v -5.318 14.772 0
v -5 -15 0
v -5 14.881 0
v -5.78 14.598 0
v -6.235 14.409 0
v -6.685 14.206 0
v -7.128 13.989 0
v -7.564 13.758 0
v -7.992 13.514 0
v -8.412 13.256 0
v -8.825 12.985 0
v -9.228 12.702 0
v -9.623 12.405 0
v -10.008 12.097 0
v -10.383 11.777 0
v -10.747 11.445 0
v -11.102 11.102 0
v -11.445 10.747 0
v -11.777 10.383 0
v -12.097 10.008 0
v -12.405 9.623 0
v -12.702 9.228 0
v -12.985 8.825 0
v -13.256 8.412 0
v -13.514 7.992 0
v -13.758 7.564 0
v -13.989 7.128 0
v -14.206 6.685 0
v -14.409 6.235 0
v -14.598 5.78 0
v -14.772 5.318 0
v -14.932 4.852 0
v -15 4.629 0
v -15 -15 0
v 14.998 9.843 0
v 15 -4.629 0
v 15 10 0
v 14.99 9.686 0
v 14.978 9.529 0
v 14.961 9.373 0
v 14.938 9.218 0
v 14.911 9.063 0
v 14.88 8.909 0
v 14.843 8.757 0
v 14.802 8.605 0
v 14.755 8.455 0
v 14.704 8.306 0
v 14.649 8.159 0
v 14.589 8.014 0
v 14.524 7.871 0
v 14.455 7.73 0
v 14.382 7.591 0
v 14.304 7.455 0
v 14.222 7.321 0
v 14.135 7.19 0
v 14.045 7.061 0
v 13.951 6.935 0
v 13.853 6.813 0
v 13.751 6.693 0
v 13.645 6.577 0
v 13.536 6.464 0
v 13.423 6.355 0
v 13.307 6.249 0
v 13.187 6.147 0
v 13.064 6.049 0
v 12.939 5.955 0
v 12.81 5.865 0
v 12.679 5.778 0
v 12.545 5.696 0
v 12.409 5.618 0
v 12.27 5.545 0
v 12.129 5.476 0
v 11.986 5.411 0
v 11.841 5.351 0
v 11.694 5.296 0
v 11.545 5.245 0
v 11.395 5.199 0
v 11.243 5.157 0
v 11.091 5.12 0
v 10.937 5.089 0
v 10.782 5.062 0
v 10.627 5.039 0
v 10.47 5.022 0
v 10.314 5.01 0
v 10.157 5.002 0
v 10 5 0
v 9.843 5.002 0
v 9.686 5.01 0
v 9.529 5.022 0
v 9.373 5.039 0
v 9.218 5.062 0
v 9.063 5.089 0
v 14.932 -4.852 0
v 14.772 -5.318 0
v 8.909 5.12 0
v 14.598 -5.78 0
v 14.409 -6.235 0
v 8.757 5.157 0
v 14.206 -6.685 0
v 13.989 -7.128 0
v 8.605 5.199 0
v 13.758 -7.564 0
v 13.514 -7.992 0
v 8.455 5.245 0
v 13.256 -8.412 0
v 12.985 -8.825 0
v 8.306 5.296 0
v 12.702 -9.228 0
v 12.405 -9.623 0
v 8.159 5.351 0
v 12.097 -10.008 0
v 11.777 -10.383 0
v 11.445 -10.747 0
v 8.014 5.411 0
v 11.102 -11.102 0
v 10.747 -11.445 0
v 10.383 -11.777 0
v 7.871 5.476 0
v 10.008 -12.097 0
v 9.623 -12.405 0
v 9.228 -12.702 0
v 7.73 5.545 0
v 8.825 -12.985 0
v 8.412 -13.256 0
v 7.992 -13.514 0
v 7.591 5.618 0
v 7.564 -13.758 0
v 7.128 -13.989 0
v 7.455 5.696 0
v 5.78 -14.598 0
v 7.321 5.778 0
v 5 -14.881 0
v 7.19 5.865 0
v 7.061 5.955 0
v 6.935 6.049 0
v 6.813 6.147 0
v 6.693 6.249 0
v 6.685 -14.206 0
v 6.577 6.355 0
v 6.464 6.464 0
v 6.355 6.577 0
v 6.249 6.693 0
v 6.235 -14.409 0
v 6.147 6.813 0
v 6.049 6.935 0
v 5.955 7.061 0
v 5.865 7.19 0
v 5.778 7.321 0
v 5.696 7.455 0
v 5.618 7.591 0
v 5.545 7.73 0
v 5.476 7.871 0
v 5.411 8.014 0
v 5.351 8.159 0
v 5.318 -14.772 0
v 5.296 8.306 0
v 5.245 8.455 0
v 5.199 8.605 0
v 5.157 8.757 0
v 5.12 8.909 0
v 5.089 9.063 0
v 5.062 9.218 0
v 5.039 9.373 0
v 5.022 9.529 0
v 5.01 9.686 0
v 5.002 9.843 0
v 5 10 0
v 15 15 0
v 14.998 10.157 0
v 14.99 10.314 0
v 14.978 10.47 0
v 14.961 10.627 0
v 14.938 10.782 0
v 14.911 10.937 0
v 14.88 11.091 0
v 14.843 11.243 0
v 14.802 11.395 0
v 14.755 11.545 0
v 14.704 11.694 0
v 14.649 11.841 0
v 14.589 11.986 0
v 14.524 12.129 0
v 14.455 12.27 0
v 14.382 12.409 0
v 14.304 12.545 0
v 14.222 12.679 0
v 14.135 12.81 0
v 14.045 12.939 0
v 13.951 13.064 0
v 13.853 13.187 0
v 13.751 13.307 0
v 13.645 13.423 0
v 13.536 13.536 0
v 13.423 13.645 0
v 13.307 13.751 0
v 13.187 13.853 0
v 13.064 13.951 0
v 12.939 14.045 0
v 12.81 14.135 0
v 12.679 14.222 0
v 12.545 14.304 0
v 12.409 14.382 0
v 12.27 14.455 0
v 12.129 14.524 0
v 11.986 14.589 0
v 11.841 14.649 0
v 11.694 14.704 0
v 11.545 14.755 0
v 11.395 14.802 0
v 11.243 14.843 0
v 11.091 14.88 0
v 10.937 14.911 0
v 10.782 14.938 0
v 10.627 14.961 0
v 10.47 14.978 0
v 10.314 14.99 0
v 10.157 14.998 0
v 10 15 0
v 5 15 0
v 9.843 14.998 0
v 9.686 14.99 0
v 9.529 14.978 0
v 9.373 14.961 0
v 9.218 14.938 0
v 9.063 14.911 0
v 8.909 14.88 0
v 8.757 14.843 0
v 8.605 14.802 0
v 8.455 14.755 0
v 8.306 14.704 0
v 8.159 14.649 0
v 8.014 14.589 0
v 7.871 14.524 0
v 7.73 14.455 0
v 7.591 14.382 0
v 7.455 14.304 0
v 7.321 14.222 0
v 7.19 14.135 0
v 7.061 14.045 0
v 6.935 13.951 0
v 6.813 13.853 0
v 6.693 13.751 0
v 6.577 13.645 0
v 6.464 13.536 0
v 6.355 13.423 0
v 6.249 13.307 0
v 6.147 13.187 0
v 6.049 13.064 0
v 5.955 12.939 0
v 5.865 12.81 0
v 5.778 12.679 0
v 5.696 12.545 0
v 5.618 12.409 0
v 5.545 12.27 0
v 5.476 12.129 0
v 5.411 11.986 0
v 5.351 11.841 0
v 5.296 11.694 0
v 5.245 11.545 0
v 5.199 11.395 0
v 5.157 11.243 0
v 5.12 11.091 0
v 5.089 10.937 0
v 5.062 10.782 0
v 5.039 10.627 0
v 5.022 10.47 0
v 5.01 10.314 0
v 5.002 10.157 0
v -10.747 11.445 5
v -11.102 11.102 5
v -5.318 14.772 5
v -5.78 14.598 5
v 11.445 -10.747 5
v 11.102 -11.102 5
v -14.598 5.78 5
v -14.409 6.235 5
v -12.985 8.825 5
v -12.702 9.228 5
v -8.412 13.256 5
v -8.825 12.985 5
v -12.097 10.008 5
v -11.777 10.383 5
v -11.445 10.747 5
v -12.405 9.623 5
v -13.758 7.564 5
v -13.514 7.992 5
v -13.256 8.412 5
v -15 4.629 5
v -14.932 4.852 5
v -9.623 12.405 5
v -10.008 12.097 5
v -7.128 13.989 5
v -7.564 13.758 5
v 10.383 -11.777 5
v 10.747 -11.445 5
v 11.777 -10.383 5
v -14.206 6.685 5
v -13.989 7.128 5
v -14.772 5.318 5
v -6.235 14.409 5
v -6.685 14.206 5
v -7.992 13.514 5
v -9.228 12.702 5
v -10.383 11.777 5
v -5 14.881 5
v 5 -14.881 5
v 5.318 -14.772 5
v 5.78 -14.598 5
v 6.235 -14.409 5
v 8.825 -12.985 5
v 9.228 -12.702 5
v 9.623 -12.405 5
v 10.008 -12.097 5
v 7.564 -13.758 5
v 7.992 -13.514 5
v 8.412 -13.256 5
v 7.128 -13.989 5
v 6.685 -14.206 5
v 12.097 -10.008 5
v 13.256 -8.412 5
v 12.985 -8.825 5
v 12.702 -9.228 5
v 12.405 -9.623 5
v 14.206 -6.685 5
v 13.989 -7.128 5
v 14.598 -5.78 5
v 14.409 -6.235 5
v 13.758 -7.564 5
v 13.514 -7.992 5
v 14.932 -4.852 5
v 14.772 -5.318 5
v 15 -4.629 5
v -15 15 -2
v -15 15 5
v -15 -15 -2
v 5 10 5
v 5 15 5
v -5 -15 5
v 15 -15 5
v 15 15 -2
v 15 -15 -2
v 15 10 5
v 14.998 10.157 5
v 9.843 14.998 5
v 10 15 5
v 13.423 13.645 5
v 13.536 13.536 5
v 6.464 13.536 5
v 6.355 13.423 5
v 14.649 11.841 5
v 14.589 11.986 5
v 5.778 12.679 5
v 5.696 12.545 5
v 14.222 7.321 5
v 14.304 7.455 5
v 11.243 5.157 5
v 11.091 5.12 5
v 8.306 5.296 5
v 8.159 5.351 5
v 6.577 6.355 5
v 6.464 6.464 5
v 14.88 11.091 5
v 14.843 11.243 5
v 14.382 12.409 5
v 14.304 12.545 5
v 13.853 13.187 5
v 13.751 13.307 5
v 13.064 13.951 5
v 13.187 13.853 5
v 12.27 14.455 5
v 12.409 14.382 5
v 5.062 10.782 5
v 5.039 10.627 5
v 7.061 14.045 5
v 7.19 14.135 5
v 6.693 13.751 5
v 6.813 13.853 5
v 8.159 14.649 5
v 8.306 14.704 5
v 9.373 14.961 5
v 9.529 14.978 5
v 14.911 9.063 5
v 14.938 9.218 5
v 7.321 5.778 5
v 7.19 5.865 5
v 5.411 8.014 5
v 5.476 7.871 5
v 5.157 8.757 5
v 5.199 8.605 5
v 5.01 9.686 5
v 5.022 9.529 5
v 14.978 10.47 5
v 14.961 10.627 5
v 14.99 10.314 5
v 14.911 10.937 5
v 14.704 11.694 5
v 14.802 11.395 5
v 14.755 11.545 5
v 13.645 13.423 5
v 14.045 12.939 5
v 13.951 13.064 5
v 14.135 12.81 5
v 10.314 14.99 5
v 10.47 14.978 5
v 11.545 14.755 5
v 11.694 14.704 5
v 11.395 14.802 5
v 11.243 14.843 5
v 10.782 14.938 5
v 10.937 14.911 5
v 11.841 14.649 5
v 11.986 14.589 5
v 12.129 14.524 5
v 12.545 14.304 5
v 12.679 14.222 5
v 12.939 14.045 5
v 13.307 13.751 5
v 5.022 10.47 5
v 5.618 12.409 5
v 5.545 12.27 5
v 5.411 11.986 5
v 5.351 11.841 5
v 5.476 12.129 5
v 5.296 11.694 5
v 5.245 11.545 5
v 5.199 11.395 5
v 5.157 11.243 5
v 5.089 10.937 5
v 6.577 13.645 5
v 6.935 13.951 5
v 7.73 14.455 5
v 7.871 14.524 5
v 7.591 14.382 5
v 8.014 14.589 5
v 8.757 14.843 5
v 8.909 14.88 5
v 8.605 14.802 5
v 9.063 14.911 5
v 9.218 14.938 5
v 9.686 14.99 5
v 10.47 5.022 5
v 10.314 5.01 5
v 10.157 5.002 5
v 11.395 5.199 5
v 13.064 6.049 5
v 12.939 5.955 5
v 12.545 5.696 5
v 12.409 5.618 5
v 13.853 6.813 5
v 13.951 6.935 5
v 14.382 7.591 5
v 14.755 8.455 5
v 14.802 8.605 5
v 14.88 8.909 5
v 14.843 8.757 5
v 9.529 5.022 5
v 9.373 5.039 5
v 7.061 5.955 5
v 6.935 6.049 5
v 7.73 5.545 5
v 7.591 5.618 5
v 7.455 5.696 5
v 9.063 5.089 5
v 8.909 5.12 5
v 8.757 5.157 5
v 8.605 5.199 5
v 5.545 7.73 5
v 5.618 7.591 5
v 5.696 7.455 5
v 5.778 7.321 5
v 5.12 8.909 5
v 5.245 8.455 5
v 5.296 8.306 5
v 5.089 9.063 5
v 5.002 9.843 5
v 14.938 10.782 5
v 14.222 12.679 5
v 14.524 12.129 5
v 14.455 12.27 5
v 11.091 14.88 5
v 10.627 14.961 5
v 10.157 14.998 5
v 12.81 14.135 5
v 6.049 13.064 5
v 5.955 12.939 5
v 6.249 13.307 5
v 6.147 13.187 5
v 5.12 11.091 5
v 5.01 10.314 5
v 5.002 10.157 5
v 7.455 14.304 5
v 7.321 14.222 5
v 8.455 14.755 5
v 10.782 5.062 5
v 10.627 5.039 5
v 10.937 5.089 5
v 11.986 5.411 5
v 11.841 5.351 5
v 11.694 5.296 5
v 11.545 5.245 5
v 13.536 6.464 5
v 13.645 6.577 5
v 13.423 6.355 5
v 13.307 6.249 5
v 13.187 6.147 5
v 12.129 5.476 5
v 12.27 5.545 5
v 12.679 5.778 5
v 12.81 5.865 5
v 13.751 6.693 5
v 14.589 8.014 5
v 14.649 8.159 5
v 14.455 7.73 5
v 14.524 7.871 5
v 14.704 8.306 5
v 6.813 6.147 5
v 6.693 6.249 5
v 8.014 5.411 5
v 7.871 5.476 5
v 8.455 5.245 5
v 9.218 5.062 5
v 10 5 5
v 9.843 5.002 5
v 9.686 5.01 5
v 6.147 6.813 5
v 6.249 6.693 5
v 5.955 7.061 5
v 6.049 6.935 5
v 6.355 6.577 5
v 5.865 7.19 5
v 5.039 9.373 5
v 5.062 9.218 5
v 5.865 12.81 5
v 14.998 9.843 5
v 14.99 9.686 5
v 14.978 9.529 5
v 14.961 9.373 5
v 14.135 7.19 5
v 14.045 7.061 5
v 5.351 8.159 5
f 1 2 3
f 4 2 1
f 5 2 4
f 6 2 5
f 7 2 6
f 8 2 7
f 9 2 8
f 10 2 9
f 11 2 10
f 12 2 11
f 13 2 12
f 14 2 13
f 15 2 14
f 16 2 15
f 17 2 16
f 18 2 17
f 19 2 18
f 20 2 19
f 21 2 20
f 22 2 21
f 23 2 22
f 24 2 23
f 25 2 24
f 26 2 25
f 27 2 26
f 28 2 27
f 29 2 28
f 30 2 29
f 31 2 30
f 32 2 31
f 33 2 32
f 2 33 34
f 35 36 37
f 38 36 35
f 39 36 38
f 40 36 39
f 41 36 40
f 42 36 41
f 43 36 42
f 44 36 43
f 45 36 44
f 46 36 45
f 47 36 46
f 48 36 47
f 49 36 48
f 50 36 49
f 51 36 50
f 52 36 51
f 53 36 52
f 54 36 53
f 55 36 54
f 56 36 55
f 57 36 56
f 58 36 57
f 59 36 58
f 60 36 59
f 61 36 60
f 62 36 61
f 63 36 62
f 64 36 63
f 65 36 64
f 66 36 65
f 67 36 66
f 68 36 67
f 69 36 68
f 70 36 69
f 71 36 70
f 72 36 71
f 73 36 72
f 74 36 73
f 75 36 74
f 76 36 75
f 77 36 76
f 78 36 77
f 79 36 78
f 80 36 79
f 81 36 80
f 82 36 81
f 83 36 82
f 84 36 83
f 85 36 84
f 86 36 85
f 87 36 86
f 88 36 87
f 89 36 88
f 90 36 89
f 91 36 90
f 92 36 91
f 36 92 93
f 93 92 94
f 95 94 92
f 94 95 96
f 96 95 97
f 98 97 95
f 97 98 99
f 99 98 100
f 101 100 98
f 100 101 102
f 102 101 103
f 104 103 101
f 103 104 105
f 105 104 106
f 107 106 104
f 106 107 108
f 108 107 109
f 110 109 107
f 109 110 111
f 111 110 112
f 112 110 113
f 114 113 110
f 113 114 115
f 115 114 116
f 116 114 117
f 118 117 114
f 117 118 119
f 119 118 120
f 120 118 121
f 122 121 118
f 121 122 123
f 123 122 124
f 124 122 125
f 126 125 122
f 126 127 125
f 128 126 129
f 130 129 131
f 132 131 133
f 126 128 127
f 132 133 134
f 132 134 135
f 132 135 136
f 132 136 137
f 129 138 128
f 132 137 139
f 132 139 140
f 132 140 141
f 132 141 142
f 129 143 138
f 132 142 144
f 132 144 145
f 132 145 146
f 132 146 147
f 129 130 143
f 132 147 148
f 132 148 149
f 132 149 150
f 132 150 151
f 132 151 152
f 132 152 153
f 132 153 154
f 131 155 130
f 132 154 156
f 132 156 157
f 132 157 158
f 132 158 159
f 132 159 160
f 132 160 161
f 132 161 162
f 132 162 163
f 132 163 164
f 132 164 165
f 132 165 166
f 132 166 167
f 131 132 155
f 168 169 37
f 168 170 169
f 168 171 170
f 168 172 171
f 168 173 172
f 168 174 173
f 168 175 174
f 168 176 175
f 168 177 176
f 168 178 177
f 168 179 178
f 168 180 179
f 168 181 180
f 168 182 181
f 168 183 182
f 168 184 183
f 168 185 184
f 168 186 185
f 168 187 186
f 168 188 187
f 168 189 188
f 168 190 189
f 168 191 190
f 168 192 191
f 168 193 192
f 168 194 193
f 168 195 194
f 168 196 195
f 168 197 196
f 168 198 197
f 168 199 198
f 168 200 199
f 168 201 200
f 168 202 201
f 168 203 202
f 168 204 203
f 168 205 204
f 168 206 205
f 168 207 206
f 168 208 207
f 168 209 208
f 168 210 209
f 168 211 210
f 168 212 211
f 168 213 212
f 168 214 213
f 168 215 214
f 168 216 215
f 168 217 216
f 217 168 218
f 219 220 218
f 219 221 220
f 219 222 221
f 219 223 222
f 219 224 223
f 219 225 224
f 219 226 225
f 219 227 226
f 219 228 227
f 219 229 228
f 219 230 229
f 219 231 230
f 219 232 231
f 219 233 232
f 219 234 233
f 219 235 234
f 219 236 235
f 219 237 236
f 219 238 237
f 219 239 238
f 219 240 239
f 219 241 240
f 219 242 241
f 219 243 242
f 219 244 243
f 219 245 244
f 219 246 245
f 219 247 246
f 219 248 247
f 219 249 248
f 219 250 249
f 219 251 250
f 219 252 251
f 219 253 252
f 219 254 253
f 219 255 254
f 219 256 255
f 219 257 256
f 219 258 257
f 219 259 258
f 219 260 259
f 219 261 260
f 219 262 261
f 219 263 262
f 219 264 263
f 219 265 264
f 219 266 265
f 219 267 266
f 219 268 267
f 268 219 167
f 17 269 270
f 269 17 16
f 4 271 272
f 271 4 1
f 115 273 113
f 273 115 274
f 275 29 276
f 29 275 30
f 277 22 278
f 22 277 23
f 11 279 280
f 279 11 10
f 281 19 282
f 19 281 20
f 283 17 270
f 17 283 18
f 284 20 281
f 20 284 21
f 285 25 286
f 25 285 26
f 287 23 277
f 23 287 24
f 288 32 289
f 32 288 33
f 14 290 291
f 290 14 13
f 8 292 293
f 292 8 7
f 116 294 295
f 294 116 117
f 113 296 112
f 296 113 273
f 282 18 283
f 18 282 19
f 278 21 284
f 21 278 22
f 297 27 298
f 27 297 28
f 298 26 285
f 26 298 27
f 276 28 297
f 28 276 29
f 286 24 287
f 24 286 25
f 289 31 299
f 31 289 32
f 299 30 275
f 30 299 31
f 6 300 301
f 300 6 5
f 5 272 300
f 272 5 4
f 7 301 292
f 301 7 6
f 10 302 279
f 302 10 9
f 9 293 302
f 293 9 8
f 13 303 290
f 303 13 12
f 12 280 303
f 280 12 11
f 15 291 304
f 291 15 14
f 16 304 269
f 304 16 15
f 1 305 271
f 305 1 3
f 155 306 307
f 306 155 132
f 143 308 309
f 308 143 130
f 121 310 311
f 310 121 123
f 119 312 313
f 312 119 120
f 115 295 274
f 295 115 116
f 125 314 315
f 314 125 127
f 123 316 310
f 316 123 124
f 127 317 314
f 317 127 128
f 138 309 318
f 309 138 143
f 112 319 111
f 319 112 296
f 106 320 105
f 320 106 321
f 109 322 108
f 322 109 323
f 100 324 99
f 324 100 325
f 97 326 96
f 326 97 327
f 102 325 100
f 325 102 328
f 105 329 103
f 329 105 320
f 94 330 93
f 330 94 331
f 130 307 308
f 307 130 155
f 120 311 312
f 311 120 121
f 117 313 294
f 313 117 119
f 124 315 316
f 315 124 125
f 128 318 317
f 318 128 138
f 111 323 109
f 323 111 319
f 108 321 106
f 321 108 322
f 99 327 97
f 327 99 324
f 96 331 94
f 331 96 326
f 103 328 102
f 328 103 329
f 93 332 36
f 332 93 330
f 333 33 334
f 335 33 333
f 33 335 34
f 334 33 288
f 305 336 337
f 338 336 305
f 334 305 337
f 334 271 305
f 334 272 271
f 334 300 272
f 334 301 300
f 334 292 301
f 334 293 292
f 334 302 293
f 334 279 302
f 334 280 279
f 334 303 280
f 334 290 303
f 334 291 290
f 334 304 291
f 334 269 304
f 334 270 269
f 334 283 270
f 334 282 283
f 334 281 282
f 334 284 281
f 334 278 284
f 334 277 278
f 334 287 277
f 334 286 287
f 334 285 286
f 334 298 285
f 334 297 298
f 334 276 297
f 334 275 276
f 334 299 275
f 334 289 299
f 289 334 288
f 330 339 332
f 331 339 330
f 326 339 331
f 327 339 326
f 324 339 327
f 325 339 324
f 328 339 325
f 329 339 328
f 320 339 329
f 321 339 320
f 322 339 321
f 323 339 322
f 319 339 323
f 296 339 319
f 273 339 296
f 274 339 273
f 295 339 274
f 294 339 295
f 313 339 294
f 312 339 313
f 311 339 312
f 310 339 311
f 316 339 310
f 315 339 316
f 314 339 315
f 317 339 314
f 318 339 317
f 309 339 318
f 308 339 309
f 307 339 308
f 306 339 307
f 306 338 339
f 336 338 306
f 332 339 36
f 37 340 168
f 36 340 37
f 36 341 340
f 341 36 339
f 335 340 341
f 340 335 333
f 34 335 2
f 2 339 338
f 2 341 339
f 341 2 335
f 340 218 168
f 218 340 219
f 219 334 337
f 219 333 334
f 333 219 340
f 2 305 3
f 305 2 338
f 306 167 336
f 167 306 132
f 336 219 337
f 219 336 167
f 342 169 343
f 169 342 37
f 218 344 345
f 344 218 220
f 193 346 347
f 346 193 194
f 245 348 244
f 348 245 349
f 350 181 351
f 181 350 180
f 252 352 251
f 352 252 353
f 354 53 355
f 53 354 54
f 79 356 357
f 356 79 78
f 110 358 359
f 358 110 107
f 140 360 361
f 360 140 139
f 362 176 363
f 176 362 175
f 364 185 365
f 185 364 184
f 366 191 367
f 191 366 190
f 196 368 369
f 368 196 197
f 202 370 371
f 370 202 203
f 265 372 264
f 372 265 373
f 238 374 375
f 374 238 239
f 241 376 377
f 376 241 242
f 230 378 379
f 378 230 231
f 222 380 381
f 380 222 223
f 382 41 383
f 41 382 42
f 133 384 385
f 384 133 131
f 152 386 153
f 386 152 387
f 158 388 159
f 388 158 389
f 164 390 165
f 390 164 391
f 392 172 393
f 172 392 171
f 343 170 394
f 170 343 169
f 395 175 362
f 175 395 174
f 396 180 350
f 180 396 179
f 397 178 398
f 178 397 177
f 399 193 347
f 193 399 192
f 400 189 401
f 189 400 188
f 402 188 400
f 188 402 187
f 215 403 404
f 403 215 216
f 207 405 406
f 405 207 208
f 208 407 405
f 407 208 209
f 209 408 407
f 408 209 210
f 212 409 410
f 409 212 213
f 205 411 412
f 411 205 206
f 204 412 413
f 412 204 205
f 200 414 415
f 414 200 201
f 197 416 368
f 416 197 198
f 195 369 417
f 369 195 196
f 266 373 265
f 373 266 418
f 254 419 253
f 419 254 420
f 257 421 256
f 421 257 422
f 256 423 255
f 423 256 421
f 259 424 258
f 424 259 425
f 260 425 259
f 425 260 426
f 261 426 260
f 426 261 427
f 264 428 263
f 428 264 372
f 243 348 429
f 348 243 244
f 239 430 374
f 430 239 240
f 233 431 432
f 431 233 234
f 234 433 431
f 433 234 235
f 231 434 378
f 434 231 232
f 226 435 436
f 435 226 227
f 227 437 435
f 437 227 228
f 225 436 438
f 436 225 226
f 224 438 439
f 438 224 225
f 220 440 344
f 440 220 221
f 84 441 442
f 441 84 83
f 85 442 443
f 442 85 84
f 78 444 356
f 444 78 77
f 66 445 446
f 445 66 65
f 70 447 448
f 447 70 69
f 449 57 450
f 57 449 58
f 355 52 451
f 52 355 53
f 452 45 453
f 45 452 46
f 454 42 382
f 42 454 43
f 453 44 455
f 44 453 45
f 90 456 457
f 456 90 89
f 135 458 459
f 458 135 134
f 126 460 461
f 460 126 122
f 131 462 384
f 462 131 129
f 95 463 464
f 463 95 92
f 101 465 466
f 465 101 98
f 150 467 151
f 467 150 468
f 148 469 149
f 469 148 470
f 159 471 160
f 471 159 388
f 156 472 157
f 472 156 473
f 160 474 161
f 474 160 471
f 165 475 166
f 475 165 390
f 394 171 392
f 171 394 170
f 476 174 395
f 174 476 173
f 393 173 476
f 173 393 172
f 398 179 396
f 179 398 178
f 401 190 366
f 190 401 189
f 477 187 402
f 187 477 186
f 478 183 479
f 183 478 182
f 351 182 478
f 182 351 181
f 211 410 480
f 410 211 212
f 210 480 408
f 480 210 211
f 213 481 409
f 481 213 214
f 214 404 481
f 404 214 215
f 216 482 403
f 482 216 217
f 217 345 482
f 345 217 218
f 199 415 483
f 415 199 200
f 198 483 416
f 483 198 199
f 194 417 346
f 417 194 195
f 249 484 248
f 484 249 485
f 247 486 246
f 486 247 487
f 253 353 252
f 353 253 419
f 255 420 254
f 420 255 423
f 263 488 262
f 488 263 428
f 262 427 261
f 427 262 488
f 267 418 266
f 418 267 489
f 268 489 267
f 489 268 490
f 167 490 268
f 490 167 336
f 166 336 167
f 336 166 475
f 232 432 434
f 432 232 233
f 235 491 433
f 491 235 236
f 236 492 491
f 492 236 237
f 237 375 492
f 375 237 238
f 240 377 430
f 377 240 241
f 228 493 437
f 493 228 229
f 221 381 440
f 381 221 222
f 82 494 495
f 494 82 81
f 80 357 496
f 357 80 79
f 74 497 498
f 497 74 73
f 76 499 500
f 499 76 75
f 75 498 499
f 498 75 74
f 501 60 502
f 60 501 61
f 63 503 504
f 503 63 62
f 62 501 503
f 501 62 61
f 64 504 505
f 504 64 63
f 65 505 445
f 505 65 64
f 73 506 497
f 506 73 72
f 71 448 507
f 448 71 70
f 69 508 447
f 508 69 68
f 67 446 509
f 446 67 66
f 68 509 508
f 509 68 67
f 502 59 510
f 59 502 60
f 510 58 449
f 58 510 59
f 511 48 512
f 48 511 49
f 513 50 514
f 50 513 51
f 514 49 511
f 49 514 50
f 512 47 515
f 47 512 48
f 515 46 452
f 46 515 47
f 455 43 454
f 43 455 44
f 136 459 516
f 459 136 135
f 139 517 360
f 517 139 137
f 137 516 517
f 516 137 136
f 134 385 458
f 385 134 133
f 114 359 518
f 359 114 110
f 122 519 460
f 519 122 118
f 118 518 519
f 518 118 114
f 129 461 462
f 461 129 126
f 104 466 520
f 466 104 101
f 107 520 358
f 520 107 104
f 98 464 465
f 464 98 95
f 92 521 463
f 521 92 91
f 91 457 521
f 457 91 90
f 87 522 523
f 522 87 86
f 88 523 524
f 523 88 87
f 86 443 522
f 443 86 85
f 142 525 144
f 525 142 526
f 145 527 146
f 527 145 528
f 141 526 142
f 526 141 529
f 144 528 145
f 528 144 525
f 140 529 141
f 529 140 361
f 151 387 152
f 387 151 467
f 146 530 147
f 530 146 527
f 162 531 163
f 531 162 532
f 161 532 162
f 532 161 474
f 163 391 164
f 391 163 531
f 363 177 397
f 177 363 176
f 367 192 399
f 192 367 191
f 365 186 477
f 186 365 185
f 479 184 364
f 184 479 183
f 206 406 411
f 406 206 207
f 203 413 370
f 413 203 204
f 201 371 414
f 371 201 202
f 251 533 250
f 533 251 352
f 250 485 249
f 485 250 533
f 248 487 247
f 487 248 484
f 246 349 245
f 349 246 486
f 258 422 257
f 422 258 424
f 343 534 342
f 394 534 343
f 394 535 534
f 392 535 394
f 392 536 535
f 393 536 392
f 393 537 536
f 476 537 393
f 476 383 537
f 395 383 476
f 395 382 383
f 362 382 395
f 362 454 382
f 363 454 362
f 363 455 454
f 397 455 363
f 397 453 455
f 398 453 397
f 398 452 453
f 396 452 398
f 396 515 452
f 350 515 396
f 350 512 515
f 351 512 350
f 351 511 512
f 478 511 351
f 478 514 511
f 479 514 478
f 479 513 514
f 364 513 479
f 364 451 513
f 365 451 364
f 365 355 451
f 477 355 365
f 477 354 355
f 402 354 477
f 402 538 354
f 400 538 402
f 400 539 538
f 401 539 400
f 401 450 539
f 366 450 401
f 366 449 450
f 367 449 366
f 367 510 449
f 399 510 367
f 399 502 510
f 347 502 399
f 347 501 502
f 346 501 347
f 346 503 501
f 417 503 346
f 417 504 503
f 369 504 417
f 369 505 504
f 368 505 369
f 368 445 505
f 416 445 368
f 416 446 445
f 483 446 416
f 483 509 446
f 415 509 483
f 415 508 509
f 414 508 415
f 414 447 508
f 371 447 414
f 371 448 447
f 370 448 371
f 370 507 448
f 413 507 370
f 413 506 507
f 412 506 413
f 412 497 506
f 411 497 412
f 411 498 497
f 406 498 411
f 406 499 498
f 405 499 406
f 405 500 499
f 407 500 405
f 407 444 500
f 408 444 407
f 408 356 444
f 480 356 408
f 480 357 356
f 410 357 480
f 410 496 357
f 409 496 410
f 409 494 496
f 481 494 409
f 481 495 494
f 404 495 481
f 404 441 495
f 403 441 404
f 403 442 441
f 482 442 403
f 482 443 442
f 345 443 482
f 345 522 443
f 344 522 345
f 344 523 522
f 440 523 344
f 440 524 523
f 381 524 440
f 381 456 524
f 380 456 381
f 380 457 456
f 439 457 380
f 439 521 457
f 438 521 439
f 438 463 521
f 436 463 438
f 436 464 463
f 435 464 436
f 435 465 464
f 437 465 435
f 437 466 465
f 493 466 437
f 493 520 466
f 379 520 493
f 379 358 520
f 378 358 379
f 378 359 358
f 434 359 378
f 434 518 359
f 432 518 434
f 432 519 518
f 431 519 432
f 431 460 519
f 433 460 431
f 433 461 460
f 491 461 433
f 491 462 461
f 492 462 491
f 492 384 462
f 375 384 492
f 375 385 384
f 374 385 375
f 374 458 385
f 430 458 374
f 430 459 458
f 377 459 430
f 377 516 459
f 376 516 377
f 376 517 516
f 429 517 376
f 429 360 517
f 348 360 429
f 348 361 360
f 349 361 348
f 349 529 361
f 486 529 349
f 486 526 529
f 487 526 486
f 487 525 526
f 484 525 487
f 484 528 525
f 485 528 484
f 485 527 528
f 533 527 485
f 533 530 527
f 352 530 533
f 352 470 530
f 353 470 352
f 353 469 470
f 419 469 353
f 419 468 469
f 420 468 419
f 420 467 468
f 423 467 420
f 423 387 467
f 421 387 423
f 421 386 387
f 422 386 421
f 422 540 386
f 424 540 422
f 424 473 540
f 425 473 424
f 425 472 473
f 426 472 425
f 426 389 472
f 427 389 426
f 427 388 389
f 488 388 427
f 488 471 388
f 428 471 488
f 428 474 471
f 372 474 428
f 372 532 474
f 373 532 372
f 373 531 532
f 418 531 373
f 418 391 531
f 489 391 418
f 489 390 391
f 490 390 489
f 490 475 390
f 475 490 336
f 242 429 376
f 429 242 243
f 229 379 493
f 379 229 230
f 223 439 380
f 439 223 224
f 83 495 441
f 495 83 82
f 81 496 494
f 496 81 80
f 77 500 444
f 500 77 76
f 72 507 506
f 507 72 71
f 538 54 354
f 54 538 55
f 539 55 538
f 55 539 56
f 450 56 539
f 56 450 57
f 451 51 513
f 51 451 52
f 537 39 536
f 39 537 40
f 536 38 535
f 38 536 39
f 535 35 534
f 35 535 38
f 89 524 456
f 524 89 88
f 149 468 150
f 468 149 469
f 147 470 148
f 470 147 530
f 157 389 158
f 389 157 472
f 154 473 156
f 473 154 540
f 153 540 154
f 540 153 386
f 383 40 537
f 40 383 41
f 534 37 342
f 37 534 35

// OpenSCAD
em_height=5;
base_height=2;
unit=30; // Width of Emblem (mm)
circle_unit=30*314/300;

module base(){
	difference(){
		translate([-unit/2.0, -unit/2.0, -base_height])
			cube([unit, unit, em_height + base_height]);
			
		union(){
			cube([circle_unit, circle_unit/2.0, em_height+1]);
			translate([-circle_unit/2.0, -circle_unit/2.0, 0])
				cube([circle_unit/2.0, circle_unit/2.0, em_height+1]);
			cylinder(r=circle_unit/2.0, h=em_height+1, $fn=200);
		}
	}
}

module center_bar(){
	translate([-unit/(3.0*2.0), -unit/2.0, -base_height/2.0])
		cube([unit/3.0, unit, em_height+base_height/2.0]);
}

module top_left_circle(){
	translate([unit/3.0, unit/3.0, -base_height/2.0])
		cylinder(r=unit/6.0, h=em_height+base_height/2.0, $fn=200);
}


module tokyo_olympic_emblem(){
	union(){
		base();
		center_bar();
		top_left_circle();
	}
}

tokyo_olympic_emblem();
